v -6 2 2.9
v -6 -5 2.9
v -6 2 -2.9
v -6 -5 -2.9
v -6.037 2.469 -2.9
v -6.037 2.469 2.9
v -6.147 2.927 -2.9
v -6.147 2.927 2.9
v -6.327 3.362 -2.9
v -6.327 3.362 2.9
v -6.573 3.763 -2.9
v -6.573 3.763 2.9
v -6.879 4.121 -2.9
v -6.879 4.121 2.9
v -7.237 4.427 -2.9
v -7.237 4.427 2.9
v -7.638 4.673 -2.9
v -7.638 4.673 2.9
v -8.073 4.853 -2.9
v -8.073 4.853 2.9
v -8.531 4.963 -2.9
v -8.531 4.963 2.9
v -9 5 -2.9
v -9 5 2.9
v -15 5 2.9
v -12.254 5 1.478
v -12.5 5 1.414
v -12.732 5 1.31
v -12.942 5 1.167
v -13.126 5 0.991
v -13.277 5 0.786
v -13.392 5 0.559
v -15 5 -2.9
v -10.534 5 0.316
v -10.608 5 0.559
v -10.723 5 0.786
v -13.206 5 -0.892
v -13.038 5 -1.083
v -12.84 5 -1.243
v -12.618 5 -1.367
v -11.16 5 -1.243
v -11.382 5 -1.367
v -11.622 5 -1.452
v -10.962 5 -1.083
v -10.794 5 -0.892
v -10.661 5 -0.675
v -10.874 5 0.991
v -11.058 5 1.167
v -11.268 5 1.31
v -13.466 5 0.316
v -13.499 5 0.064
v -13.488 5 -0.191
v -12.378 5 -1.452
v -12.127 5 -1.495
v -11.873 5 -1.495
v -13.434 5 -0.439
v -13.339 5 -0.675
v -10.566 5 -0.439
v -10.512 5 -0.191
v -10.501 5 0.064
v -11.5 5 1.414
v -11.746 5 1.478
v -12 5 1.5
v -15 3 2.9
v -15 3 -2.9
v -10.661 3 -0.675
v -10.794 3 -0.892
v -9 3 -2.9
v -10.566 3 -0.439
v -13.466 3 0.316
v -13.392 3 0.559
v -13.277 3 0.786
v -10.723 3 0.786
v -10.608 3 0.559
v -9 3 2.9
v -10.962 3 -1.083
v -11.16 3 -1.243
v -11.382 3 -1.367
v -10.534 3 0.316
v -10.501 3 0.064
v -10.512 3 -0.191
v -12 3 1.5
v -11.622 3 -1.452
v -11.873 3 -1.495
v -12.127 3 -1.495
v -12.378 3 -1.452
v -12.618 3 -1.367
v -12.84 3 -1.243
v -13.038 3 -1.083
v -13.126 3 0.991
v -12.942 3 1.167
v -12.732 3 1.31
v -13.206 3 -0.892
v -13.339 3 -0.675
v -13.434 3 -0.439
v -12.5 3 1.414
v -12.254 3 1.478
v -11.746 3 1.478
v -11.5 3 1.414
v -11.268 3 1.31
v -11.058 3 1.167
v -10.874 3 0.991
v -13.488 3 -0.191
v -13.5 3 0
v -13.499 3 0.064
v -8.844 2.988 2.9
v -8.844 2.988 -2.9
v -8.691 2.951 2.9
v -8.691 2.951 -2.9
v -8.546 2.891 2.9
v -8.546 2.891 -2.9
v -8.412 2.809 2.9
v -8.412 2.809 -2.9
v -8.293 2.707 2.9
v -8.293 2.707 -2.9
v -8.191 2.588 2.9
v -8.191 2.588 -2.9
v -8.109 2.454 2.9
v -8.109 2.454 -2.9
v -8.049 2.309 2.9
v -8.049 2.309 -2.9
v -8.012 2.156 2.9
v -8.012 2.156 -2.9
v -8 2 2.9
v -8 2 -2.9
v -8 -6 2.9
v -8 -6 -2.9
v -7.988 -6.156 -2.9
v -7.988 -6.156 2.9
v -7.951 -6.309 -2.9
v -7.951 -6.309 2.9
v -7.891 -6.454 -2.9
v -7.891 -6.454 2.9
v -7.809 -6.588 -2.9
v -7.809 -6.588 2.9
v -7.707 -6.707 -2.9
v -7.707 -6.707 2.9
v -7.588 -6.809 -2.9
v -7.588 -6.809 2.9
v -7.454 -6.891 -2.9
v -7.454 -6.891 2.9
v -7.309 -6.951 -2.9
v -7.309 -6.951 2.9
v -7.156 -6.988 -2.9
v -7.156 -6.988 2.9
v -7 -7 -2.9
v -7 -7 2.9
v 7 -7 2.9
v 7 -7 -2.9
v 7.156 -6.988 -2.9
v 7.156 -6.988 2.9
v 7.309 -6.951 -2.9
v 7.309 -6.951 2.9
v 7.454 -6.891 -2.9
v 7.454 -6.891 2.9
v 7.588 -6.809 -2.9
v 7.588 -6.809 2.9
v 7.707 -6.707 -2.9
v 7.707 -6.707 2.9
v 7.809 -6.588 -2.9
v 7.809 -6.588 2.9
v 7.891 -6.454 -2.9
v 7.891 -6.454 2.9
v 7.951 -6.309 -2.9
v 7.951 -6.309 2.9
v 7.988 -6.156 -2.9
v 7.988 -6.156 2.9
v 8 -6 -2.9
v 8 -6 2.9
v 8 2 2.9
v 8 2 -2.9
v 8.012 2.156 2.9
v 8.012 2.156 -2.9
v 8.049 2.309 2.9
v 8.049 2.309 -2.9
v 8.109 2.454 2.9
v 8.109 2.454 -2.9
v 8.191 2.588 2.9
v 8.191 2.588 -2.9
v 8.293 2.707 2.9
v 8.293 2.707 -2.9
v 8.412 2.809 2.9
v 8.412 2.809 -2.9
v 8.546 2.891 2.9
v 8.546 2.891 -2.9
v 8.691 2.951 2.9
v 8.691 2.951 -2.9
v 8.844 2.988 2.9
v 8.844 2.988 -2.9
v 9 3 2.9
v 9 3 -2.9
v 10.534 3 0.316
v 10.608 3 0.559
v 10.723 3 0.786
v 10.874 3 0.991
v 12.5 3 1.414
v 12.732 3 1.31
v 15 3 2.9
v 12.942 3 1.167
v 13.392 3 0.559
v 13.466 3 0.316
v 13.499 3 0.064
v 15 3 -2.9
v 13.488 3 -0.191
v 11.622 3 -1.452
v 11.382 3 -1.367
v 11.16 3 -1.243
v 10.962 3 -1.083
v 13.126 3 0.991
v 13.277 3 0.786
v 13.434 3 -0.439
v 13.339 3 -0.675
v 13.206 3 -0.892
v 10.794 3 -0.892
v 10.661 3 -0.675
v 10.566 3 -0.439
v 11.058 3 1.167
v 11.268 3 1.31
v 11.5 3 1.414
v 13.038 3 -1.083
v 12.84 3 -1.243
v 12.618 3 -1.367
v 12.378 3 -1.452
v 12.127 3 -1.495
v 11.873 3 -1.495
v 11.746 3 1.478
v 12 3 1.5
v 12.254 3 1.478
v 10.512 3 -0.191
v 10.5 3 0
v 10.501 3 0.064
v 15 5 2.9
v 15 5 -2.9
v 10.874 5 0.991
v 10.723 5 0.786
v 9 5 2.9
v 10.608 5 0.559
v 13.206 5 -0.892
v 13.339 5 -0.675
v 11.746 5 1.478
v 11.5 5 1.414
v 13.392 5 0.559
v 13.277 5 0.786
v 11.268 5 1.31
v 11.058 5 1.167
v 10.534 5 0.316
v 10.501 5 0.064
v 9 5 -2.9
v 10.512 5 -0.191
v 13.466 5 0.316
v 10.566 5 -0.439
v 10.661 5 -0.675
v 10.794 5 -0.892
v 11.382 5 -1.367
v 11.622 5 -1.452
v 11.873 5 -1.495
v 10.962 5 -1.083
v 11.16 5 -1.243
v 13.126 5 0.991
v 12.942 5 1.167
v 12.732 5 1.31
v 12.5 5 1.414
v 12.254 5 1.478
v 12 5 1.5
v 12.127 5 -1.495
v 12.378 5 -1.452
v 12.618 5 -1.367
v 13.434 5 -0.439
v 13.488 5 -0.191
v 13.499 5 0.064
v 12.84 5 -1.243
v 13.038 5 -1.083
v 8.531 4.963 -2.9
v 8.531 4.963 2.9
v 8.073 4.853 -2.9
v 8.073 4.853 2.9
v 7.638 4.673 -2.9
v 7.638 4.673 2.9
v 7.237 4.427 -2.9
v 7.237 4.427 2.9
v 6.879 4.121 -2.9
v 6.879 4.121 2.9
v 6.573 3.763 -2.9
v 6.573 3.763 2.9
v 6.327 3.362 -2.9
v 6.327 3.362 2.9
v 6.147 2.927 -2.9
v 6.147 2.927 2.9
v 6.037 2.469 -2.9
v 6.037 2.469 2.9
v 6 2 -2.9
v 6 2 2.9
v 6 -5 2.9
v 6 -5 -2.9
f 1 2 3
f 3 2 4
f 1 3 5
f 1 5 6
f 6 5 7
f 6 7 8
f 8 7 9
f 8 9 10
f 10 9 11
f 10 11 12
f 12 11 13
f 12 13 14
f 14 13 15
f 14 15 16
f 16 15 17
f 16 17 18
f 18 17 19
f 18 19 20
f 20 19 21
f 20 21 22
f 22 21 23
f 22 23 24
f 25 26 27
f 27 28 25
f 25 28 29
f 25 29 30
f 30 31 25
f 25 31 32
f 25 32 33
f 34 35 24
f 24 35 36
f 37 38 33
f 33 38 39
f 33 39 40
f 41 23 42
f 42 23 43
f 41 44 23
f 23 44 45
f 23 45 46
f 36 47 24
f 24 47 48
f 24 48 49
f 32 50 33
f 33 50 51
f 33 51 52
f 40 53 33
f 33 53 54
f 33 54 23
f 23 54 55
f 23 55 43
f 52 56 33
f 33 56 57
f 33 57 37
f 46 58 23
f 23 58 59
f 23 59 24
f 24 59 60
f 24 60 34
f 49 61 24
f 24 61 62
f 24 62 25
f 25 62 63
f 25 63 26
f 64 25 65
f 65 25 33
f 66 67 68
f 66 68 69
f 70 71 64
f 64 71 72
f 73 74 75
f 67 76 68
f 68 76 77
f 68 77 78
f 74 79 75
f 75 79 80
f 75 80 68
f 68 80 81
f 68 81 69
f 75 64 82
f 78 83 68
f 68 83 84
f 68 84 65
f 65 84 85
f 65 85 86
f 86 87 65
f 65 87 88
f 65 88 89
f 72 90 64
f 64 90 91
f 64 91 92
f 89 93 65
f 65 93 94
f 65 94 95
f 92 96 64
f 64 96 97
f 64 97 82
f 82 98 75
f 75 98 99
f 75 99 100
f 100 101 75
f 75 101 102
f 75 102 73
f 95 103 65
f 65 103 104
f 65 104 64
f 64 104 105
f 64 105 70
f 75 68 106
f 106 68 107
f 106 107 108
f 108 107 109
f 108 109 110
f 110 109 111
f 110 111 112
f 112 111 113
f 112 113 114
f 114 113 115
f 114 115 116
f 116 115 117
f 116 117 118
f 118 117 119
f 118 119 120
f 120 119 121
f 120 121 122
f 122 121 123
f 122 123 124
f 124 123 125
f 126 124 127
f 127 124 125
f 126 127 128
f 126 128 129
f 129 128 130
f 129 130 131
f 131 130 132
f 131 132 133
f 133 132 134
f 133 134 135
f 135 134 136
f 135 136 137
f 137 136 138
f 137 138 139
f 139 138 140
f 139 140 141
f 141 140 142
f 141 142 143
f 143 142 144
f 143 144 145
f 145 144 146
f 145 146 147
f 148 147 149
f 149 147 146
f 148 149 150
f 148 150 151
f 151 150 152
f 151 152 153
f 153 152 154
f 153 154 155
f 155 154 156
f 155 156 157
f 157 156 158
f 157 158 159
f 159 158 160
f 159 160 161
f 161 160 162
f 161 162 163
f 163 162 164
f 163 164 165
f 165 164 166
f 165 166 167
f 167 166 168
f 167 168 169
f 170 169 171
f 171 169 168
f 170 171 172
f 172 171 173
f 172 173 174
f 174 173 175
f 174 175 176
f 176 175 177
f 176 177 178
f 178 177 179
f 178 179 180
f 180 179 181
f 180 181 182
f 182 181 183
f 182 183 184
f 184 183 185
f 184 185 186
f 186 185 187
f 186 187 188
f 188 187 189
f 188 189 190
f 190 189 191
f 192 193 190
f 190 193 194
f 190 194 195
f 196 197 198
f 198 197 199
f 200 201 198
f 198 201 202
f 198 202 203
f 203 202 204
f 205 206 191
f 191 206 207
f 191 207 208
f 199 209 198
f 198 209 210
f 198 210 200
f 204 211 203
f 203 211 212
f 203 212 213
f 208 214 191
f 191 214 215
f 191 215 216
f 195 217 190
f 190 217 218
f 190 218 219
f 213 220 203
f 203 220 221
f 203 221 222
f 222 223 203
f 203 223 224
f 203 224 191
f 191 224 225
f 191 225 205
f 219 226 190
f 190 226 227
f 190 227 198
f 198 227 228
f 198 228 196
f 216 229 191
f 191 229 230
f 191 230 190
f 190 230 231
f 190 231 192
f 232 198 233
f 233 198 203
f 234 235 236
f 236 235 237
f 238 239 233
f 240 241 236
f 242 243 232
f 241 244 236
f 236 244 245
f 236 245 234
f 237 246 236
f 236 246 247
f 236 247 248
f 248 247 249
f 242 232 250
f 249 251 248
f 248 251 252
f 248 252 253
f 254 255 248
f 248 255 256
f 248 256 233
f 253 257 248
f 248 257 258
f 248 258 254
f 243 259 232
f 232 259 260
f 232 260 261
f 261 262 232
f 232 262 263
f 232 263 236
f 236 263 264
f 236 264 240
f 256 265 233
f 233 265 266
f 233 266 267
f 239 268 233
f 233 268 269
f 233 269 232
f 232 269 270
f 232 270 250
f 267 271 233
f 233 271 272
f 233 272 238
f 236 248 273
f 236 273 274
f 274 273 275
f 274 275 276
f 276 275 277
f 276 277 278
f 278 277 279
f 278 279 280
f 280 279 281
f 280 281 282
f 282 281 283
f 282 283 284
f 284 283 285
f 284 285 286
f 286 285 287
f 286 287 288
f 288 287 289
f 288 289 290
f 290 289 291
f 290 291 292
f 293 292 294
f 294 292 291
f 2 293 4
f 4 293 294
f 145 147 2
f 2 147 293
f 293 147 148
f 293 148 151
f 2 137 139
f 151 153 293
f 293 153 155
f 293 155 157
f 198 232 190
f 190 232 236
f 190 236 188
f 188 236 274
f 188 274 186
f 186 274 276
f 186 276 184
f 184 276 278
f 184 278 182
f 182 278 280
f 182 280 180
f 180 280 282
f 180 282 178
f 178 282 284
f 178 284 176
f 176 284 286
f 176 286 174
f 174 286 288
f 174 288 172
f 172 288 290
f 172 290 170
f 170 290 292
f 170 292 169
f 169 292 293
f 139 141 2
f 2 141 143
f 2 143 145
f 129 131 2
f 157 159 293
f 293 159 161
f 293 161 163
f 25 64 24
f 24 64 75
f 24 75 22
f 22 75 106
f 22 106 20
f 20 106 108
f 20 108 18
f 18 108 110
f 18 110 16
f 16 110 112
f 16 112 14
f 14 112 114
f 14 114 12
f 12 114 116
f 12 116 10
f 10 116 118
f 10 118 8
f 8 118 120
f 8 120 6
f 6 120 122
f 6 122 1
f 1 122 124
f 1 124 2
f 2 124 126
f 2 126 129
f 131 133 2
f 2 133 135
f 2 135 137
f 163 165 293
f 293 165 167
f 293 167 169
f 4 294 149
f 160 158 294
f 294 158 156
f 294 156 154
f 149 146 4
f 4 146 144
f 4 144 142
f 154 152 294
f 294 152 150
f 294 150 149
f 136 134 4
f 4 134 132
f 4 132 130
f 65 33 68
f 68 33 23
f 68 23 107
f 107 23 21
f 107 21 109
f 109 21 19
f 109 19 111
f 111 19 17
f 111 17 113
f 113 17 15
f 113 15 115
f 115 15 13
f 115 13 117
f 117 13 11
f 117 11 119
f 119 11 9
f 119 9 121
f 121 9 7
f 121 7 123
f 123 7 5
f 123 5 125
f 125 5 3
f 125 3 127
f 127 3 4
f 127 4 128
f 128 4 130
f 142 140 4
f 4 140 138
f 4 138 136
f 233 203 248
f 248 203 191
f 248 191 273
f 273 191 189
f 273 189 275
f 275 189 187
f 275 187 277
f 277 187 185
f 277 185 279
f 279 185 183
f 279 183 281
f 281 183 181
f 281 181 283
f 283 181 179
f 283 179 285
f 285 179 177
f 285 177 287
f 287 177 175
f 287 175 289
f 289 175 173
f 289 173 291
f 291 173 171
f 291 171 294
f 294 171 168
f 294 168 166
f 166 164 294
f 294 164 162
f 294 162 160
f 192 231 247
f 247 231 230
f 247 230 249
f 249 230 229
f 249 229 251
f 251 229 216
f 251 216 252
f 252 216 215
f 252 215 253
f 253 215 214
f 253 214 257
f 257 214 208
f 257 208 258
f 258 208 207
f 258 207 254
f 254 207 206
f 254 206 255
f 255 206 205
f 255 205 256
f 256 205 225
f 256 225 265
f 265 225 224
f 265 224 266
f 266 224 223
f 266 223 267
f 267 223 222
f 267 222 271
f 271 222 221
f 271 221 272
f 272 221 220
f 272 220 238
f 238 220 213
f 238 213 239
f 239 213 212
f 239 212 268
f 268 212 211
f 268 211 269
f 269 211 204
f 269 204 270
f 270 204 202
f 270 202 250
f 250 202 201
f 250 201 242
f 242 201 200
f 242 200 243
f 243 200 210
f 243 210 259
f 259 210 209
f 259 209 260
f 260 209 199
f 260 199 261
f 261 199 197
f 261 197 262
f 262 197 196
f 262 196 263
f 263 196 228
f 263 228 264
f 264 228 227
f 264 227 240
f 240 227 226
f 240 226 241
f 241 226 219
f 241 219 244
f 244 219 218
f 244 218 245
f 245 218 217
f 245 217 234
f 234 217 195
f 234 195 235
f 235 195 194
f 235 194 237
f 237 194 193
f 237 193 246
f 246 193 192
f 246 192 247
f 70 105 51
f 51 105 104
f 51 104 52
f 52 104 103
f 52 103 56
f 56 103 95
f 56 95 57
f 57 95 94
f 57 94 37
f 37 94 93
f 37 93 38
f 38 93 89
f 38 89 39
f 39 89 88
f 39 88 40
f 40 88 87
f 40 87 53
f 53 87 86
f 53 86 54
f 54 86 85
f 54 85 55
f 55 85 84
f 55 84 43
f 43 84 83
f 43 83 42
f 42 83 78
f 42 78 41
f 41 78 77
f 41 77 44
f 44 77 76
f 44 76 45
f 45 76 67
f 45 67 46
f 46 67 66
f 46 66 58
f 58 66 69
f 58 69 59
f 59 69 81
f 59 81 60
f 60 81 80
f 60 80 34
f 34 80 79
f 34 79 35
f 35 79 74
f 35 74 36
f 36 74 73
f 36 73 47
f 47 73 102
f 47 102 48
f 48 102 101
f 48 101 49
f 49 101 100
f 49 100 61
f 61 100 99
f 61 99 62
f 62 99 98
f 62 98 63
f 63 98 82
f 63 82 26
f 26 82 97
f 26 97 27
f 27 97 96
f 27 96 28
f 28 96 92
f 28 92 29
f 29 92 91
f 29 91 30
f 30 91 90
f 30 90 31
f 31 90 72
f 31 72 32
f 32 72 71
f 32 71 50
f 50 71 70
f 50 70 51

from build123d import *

# Parameters (mm, degrees)
BOSS_EXTRUDE1_DEPTH = 2.9
SKETCH5_R           = 1.5
CUT_EXTRUDE1_DEPTH  = 13


with BuildPart() as part:
    # Sketch3 → Boss-Extrude1 (new body, symmetric)
    with BuildSketch(Plane.XY):
        with BuildLine():
            Line((-6, -5), (6, -5))
            Line((6, -5), (6, 2))
            ThreePointArc((6, 2), (6.878679656, 4.121320344), (9, 5))
            Line((9, 5), (15, 5))
            Line((15, 5), (15, 3))
            Line((15, 3), (9, 3))
            ThreePointArc((9, 3), (8.292893219, 2.707106781), (8, 2))
            Line((8, 2), (8, -6))
            ThreePointArc((8, -6), (7.707106781, -6.707106781), (7, -7))
            Line((7, -7), (-7, -7))
            ThreePointArc((-7, -7), (-7.707106781, -6.707106781), (-8, -6))
            Line((-8, -6), (-8, 2))
            ThreePointArc((-8, 2), (-8.292893219, 2.707106781), (-9, 3))
            Line((-9, 3), (-15, 3))
            Line((-15, 3), (-15, 5))
            Line((-15, 5), (-9, 5))
            ThreePointArc((-9, 5), (-6.878679656, 4.121320344), (-6, 2))
            Line((-6, 2), (-6, -5))
        make_face()
    extrude(amount=BOSS_EXTRUDE1_DEPTH, both=True)

    # Sketch5 → Cut-Extrude1 (cut, through all)
    with BuildSketch(Plane(origin=(0, 5, 0), x_dir=(1, 0, 0), z_dir=(0, 1, 0))):
        with Locations((12, 0)):
            Circle(SKETCH5_R)
        with Locations((-12, 0)):
            Circle(SKETCH5_R)
    extrude(amount=-CUT_EXTRUDE1_DEPTH, mode=Mode.SUBTRACT)


solid = part.part
